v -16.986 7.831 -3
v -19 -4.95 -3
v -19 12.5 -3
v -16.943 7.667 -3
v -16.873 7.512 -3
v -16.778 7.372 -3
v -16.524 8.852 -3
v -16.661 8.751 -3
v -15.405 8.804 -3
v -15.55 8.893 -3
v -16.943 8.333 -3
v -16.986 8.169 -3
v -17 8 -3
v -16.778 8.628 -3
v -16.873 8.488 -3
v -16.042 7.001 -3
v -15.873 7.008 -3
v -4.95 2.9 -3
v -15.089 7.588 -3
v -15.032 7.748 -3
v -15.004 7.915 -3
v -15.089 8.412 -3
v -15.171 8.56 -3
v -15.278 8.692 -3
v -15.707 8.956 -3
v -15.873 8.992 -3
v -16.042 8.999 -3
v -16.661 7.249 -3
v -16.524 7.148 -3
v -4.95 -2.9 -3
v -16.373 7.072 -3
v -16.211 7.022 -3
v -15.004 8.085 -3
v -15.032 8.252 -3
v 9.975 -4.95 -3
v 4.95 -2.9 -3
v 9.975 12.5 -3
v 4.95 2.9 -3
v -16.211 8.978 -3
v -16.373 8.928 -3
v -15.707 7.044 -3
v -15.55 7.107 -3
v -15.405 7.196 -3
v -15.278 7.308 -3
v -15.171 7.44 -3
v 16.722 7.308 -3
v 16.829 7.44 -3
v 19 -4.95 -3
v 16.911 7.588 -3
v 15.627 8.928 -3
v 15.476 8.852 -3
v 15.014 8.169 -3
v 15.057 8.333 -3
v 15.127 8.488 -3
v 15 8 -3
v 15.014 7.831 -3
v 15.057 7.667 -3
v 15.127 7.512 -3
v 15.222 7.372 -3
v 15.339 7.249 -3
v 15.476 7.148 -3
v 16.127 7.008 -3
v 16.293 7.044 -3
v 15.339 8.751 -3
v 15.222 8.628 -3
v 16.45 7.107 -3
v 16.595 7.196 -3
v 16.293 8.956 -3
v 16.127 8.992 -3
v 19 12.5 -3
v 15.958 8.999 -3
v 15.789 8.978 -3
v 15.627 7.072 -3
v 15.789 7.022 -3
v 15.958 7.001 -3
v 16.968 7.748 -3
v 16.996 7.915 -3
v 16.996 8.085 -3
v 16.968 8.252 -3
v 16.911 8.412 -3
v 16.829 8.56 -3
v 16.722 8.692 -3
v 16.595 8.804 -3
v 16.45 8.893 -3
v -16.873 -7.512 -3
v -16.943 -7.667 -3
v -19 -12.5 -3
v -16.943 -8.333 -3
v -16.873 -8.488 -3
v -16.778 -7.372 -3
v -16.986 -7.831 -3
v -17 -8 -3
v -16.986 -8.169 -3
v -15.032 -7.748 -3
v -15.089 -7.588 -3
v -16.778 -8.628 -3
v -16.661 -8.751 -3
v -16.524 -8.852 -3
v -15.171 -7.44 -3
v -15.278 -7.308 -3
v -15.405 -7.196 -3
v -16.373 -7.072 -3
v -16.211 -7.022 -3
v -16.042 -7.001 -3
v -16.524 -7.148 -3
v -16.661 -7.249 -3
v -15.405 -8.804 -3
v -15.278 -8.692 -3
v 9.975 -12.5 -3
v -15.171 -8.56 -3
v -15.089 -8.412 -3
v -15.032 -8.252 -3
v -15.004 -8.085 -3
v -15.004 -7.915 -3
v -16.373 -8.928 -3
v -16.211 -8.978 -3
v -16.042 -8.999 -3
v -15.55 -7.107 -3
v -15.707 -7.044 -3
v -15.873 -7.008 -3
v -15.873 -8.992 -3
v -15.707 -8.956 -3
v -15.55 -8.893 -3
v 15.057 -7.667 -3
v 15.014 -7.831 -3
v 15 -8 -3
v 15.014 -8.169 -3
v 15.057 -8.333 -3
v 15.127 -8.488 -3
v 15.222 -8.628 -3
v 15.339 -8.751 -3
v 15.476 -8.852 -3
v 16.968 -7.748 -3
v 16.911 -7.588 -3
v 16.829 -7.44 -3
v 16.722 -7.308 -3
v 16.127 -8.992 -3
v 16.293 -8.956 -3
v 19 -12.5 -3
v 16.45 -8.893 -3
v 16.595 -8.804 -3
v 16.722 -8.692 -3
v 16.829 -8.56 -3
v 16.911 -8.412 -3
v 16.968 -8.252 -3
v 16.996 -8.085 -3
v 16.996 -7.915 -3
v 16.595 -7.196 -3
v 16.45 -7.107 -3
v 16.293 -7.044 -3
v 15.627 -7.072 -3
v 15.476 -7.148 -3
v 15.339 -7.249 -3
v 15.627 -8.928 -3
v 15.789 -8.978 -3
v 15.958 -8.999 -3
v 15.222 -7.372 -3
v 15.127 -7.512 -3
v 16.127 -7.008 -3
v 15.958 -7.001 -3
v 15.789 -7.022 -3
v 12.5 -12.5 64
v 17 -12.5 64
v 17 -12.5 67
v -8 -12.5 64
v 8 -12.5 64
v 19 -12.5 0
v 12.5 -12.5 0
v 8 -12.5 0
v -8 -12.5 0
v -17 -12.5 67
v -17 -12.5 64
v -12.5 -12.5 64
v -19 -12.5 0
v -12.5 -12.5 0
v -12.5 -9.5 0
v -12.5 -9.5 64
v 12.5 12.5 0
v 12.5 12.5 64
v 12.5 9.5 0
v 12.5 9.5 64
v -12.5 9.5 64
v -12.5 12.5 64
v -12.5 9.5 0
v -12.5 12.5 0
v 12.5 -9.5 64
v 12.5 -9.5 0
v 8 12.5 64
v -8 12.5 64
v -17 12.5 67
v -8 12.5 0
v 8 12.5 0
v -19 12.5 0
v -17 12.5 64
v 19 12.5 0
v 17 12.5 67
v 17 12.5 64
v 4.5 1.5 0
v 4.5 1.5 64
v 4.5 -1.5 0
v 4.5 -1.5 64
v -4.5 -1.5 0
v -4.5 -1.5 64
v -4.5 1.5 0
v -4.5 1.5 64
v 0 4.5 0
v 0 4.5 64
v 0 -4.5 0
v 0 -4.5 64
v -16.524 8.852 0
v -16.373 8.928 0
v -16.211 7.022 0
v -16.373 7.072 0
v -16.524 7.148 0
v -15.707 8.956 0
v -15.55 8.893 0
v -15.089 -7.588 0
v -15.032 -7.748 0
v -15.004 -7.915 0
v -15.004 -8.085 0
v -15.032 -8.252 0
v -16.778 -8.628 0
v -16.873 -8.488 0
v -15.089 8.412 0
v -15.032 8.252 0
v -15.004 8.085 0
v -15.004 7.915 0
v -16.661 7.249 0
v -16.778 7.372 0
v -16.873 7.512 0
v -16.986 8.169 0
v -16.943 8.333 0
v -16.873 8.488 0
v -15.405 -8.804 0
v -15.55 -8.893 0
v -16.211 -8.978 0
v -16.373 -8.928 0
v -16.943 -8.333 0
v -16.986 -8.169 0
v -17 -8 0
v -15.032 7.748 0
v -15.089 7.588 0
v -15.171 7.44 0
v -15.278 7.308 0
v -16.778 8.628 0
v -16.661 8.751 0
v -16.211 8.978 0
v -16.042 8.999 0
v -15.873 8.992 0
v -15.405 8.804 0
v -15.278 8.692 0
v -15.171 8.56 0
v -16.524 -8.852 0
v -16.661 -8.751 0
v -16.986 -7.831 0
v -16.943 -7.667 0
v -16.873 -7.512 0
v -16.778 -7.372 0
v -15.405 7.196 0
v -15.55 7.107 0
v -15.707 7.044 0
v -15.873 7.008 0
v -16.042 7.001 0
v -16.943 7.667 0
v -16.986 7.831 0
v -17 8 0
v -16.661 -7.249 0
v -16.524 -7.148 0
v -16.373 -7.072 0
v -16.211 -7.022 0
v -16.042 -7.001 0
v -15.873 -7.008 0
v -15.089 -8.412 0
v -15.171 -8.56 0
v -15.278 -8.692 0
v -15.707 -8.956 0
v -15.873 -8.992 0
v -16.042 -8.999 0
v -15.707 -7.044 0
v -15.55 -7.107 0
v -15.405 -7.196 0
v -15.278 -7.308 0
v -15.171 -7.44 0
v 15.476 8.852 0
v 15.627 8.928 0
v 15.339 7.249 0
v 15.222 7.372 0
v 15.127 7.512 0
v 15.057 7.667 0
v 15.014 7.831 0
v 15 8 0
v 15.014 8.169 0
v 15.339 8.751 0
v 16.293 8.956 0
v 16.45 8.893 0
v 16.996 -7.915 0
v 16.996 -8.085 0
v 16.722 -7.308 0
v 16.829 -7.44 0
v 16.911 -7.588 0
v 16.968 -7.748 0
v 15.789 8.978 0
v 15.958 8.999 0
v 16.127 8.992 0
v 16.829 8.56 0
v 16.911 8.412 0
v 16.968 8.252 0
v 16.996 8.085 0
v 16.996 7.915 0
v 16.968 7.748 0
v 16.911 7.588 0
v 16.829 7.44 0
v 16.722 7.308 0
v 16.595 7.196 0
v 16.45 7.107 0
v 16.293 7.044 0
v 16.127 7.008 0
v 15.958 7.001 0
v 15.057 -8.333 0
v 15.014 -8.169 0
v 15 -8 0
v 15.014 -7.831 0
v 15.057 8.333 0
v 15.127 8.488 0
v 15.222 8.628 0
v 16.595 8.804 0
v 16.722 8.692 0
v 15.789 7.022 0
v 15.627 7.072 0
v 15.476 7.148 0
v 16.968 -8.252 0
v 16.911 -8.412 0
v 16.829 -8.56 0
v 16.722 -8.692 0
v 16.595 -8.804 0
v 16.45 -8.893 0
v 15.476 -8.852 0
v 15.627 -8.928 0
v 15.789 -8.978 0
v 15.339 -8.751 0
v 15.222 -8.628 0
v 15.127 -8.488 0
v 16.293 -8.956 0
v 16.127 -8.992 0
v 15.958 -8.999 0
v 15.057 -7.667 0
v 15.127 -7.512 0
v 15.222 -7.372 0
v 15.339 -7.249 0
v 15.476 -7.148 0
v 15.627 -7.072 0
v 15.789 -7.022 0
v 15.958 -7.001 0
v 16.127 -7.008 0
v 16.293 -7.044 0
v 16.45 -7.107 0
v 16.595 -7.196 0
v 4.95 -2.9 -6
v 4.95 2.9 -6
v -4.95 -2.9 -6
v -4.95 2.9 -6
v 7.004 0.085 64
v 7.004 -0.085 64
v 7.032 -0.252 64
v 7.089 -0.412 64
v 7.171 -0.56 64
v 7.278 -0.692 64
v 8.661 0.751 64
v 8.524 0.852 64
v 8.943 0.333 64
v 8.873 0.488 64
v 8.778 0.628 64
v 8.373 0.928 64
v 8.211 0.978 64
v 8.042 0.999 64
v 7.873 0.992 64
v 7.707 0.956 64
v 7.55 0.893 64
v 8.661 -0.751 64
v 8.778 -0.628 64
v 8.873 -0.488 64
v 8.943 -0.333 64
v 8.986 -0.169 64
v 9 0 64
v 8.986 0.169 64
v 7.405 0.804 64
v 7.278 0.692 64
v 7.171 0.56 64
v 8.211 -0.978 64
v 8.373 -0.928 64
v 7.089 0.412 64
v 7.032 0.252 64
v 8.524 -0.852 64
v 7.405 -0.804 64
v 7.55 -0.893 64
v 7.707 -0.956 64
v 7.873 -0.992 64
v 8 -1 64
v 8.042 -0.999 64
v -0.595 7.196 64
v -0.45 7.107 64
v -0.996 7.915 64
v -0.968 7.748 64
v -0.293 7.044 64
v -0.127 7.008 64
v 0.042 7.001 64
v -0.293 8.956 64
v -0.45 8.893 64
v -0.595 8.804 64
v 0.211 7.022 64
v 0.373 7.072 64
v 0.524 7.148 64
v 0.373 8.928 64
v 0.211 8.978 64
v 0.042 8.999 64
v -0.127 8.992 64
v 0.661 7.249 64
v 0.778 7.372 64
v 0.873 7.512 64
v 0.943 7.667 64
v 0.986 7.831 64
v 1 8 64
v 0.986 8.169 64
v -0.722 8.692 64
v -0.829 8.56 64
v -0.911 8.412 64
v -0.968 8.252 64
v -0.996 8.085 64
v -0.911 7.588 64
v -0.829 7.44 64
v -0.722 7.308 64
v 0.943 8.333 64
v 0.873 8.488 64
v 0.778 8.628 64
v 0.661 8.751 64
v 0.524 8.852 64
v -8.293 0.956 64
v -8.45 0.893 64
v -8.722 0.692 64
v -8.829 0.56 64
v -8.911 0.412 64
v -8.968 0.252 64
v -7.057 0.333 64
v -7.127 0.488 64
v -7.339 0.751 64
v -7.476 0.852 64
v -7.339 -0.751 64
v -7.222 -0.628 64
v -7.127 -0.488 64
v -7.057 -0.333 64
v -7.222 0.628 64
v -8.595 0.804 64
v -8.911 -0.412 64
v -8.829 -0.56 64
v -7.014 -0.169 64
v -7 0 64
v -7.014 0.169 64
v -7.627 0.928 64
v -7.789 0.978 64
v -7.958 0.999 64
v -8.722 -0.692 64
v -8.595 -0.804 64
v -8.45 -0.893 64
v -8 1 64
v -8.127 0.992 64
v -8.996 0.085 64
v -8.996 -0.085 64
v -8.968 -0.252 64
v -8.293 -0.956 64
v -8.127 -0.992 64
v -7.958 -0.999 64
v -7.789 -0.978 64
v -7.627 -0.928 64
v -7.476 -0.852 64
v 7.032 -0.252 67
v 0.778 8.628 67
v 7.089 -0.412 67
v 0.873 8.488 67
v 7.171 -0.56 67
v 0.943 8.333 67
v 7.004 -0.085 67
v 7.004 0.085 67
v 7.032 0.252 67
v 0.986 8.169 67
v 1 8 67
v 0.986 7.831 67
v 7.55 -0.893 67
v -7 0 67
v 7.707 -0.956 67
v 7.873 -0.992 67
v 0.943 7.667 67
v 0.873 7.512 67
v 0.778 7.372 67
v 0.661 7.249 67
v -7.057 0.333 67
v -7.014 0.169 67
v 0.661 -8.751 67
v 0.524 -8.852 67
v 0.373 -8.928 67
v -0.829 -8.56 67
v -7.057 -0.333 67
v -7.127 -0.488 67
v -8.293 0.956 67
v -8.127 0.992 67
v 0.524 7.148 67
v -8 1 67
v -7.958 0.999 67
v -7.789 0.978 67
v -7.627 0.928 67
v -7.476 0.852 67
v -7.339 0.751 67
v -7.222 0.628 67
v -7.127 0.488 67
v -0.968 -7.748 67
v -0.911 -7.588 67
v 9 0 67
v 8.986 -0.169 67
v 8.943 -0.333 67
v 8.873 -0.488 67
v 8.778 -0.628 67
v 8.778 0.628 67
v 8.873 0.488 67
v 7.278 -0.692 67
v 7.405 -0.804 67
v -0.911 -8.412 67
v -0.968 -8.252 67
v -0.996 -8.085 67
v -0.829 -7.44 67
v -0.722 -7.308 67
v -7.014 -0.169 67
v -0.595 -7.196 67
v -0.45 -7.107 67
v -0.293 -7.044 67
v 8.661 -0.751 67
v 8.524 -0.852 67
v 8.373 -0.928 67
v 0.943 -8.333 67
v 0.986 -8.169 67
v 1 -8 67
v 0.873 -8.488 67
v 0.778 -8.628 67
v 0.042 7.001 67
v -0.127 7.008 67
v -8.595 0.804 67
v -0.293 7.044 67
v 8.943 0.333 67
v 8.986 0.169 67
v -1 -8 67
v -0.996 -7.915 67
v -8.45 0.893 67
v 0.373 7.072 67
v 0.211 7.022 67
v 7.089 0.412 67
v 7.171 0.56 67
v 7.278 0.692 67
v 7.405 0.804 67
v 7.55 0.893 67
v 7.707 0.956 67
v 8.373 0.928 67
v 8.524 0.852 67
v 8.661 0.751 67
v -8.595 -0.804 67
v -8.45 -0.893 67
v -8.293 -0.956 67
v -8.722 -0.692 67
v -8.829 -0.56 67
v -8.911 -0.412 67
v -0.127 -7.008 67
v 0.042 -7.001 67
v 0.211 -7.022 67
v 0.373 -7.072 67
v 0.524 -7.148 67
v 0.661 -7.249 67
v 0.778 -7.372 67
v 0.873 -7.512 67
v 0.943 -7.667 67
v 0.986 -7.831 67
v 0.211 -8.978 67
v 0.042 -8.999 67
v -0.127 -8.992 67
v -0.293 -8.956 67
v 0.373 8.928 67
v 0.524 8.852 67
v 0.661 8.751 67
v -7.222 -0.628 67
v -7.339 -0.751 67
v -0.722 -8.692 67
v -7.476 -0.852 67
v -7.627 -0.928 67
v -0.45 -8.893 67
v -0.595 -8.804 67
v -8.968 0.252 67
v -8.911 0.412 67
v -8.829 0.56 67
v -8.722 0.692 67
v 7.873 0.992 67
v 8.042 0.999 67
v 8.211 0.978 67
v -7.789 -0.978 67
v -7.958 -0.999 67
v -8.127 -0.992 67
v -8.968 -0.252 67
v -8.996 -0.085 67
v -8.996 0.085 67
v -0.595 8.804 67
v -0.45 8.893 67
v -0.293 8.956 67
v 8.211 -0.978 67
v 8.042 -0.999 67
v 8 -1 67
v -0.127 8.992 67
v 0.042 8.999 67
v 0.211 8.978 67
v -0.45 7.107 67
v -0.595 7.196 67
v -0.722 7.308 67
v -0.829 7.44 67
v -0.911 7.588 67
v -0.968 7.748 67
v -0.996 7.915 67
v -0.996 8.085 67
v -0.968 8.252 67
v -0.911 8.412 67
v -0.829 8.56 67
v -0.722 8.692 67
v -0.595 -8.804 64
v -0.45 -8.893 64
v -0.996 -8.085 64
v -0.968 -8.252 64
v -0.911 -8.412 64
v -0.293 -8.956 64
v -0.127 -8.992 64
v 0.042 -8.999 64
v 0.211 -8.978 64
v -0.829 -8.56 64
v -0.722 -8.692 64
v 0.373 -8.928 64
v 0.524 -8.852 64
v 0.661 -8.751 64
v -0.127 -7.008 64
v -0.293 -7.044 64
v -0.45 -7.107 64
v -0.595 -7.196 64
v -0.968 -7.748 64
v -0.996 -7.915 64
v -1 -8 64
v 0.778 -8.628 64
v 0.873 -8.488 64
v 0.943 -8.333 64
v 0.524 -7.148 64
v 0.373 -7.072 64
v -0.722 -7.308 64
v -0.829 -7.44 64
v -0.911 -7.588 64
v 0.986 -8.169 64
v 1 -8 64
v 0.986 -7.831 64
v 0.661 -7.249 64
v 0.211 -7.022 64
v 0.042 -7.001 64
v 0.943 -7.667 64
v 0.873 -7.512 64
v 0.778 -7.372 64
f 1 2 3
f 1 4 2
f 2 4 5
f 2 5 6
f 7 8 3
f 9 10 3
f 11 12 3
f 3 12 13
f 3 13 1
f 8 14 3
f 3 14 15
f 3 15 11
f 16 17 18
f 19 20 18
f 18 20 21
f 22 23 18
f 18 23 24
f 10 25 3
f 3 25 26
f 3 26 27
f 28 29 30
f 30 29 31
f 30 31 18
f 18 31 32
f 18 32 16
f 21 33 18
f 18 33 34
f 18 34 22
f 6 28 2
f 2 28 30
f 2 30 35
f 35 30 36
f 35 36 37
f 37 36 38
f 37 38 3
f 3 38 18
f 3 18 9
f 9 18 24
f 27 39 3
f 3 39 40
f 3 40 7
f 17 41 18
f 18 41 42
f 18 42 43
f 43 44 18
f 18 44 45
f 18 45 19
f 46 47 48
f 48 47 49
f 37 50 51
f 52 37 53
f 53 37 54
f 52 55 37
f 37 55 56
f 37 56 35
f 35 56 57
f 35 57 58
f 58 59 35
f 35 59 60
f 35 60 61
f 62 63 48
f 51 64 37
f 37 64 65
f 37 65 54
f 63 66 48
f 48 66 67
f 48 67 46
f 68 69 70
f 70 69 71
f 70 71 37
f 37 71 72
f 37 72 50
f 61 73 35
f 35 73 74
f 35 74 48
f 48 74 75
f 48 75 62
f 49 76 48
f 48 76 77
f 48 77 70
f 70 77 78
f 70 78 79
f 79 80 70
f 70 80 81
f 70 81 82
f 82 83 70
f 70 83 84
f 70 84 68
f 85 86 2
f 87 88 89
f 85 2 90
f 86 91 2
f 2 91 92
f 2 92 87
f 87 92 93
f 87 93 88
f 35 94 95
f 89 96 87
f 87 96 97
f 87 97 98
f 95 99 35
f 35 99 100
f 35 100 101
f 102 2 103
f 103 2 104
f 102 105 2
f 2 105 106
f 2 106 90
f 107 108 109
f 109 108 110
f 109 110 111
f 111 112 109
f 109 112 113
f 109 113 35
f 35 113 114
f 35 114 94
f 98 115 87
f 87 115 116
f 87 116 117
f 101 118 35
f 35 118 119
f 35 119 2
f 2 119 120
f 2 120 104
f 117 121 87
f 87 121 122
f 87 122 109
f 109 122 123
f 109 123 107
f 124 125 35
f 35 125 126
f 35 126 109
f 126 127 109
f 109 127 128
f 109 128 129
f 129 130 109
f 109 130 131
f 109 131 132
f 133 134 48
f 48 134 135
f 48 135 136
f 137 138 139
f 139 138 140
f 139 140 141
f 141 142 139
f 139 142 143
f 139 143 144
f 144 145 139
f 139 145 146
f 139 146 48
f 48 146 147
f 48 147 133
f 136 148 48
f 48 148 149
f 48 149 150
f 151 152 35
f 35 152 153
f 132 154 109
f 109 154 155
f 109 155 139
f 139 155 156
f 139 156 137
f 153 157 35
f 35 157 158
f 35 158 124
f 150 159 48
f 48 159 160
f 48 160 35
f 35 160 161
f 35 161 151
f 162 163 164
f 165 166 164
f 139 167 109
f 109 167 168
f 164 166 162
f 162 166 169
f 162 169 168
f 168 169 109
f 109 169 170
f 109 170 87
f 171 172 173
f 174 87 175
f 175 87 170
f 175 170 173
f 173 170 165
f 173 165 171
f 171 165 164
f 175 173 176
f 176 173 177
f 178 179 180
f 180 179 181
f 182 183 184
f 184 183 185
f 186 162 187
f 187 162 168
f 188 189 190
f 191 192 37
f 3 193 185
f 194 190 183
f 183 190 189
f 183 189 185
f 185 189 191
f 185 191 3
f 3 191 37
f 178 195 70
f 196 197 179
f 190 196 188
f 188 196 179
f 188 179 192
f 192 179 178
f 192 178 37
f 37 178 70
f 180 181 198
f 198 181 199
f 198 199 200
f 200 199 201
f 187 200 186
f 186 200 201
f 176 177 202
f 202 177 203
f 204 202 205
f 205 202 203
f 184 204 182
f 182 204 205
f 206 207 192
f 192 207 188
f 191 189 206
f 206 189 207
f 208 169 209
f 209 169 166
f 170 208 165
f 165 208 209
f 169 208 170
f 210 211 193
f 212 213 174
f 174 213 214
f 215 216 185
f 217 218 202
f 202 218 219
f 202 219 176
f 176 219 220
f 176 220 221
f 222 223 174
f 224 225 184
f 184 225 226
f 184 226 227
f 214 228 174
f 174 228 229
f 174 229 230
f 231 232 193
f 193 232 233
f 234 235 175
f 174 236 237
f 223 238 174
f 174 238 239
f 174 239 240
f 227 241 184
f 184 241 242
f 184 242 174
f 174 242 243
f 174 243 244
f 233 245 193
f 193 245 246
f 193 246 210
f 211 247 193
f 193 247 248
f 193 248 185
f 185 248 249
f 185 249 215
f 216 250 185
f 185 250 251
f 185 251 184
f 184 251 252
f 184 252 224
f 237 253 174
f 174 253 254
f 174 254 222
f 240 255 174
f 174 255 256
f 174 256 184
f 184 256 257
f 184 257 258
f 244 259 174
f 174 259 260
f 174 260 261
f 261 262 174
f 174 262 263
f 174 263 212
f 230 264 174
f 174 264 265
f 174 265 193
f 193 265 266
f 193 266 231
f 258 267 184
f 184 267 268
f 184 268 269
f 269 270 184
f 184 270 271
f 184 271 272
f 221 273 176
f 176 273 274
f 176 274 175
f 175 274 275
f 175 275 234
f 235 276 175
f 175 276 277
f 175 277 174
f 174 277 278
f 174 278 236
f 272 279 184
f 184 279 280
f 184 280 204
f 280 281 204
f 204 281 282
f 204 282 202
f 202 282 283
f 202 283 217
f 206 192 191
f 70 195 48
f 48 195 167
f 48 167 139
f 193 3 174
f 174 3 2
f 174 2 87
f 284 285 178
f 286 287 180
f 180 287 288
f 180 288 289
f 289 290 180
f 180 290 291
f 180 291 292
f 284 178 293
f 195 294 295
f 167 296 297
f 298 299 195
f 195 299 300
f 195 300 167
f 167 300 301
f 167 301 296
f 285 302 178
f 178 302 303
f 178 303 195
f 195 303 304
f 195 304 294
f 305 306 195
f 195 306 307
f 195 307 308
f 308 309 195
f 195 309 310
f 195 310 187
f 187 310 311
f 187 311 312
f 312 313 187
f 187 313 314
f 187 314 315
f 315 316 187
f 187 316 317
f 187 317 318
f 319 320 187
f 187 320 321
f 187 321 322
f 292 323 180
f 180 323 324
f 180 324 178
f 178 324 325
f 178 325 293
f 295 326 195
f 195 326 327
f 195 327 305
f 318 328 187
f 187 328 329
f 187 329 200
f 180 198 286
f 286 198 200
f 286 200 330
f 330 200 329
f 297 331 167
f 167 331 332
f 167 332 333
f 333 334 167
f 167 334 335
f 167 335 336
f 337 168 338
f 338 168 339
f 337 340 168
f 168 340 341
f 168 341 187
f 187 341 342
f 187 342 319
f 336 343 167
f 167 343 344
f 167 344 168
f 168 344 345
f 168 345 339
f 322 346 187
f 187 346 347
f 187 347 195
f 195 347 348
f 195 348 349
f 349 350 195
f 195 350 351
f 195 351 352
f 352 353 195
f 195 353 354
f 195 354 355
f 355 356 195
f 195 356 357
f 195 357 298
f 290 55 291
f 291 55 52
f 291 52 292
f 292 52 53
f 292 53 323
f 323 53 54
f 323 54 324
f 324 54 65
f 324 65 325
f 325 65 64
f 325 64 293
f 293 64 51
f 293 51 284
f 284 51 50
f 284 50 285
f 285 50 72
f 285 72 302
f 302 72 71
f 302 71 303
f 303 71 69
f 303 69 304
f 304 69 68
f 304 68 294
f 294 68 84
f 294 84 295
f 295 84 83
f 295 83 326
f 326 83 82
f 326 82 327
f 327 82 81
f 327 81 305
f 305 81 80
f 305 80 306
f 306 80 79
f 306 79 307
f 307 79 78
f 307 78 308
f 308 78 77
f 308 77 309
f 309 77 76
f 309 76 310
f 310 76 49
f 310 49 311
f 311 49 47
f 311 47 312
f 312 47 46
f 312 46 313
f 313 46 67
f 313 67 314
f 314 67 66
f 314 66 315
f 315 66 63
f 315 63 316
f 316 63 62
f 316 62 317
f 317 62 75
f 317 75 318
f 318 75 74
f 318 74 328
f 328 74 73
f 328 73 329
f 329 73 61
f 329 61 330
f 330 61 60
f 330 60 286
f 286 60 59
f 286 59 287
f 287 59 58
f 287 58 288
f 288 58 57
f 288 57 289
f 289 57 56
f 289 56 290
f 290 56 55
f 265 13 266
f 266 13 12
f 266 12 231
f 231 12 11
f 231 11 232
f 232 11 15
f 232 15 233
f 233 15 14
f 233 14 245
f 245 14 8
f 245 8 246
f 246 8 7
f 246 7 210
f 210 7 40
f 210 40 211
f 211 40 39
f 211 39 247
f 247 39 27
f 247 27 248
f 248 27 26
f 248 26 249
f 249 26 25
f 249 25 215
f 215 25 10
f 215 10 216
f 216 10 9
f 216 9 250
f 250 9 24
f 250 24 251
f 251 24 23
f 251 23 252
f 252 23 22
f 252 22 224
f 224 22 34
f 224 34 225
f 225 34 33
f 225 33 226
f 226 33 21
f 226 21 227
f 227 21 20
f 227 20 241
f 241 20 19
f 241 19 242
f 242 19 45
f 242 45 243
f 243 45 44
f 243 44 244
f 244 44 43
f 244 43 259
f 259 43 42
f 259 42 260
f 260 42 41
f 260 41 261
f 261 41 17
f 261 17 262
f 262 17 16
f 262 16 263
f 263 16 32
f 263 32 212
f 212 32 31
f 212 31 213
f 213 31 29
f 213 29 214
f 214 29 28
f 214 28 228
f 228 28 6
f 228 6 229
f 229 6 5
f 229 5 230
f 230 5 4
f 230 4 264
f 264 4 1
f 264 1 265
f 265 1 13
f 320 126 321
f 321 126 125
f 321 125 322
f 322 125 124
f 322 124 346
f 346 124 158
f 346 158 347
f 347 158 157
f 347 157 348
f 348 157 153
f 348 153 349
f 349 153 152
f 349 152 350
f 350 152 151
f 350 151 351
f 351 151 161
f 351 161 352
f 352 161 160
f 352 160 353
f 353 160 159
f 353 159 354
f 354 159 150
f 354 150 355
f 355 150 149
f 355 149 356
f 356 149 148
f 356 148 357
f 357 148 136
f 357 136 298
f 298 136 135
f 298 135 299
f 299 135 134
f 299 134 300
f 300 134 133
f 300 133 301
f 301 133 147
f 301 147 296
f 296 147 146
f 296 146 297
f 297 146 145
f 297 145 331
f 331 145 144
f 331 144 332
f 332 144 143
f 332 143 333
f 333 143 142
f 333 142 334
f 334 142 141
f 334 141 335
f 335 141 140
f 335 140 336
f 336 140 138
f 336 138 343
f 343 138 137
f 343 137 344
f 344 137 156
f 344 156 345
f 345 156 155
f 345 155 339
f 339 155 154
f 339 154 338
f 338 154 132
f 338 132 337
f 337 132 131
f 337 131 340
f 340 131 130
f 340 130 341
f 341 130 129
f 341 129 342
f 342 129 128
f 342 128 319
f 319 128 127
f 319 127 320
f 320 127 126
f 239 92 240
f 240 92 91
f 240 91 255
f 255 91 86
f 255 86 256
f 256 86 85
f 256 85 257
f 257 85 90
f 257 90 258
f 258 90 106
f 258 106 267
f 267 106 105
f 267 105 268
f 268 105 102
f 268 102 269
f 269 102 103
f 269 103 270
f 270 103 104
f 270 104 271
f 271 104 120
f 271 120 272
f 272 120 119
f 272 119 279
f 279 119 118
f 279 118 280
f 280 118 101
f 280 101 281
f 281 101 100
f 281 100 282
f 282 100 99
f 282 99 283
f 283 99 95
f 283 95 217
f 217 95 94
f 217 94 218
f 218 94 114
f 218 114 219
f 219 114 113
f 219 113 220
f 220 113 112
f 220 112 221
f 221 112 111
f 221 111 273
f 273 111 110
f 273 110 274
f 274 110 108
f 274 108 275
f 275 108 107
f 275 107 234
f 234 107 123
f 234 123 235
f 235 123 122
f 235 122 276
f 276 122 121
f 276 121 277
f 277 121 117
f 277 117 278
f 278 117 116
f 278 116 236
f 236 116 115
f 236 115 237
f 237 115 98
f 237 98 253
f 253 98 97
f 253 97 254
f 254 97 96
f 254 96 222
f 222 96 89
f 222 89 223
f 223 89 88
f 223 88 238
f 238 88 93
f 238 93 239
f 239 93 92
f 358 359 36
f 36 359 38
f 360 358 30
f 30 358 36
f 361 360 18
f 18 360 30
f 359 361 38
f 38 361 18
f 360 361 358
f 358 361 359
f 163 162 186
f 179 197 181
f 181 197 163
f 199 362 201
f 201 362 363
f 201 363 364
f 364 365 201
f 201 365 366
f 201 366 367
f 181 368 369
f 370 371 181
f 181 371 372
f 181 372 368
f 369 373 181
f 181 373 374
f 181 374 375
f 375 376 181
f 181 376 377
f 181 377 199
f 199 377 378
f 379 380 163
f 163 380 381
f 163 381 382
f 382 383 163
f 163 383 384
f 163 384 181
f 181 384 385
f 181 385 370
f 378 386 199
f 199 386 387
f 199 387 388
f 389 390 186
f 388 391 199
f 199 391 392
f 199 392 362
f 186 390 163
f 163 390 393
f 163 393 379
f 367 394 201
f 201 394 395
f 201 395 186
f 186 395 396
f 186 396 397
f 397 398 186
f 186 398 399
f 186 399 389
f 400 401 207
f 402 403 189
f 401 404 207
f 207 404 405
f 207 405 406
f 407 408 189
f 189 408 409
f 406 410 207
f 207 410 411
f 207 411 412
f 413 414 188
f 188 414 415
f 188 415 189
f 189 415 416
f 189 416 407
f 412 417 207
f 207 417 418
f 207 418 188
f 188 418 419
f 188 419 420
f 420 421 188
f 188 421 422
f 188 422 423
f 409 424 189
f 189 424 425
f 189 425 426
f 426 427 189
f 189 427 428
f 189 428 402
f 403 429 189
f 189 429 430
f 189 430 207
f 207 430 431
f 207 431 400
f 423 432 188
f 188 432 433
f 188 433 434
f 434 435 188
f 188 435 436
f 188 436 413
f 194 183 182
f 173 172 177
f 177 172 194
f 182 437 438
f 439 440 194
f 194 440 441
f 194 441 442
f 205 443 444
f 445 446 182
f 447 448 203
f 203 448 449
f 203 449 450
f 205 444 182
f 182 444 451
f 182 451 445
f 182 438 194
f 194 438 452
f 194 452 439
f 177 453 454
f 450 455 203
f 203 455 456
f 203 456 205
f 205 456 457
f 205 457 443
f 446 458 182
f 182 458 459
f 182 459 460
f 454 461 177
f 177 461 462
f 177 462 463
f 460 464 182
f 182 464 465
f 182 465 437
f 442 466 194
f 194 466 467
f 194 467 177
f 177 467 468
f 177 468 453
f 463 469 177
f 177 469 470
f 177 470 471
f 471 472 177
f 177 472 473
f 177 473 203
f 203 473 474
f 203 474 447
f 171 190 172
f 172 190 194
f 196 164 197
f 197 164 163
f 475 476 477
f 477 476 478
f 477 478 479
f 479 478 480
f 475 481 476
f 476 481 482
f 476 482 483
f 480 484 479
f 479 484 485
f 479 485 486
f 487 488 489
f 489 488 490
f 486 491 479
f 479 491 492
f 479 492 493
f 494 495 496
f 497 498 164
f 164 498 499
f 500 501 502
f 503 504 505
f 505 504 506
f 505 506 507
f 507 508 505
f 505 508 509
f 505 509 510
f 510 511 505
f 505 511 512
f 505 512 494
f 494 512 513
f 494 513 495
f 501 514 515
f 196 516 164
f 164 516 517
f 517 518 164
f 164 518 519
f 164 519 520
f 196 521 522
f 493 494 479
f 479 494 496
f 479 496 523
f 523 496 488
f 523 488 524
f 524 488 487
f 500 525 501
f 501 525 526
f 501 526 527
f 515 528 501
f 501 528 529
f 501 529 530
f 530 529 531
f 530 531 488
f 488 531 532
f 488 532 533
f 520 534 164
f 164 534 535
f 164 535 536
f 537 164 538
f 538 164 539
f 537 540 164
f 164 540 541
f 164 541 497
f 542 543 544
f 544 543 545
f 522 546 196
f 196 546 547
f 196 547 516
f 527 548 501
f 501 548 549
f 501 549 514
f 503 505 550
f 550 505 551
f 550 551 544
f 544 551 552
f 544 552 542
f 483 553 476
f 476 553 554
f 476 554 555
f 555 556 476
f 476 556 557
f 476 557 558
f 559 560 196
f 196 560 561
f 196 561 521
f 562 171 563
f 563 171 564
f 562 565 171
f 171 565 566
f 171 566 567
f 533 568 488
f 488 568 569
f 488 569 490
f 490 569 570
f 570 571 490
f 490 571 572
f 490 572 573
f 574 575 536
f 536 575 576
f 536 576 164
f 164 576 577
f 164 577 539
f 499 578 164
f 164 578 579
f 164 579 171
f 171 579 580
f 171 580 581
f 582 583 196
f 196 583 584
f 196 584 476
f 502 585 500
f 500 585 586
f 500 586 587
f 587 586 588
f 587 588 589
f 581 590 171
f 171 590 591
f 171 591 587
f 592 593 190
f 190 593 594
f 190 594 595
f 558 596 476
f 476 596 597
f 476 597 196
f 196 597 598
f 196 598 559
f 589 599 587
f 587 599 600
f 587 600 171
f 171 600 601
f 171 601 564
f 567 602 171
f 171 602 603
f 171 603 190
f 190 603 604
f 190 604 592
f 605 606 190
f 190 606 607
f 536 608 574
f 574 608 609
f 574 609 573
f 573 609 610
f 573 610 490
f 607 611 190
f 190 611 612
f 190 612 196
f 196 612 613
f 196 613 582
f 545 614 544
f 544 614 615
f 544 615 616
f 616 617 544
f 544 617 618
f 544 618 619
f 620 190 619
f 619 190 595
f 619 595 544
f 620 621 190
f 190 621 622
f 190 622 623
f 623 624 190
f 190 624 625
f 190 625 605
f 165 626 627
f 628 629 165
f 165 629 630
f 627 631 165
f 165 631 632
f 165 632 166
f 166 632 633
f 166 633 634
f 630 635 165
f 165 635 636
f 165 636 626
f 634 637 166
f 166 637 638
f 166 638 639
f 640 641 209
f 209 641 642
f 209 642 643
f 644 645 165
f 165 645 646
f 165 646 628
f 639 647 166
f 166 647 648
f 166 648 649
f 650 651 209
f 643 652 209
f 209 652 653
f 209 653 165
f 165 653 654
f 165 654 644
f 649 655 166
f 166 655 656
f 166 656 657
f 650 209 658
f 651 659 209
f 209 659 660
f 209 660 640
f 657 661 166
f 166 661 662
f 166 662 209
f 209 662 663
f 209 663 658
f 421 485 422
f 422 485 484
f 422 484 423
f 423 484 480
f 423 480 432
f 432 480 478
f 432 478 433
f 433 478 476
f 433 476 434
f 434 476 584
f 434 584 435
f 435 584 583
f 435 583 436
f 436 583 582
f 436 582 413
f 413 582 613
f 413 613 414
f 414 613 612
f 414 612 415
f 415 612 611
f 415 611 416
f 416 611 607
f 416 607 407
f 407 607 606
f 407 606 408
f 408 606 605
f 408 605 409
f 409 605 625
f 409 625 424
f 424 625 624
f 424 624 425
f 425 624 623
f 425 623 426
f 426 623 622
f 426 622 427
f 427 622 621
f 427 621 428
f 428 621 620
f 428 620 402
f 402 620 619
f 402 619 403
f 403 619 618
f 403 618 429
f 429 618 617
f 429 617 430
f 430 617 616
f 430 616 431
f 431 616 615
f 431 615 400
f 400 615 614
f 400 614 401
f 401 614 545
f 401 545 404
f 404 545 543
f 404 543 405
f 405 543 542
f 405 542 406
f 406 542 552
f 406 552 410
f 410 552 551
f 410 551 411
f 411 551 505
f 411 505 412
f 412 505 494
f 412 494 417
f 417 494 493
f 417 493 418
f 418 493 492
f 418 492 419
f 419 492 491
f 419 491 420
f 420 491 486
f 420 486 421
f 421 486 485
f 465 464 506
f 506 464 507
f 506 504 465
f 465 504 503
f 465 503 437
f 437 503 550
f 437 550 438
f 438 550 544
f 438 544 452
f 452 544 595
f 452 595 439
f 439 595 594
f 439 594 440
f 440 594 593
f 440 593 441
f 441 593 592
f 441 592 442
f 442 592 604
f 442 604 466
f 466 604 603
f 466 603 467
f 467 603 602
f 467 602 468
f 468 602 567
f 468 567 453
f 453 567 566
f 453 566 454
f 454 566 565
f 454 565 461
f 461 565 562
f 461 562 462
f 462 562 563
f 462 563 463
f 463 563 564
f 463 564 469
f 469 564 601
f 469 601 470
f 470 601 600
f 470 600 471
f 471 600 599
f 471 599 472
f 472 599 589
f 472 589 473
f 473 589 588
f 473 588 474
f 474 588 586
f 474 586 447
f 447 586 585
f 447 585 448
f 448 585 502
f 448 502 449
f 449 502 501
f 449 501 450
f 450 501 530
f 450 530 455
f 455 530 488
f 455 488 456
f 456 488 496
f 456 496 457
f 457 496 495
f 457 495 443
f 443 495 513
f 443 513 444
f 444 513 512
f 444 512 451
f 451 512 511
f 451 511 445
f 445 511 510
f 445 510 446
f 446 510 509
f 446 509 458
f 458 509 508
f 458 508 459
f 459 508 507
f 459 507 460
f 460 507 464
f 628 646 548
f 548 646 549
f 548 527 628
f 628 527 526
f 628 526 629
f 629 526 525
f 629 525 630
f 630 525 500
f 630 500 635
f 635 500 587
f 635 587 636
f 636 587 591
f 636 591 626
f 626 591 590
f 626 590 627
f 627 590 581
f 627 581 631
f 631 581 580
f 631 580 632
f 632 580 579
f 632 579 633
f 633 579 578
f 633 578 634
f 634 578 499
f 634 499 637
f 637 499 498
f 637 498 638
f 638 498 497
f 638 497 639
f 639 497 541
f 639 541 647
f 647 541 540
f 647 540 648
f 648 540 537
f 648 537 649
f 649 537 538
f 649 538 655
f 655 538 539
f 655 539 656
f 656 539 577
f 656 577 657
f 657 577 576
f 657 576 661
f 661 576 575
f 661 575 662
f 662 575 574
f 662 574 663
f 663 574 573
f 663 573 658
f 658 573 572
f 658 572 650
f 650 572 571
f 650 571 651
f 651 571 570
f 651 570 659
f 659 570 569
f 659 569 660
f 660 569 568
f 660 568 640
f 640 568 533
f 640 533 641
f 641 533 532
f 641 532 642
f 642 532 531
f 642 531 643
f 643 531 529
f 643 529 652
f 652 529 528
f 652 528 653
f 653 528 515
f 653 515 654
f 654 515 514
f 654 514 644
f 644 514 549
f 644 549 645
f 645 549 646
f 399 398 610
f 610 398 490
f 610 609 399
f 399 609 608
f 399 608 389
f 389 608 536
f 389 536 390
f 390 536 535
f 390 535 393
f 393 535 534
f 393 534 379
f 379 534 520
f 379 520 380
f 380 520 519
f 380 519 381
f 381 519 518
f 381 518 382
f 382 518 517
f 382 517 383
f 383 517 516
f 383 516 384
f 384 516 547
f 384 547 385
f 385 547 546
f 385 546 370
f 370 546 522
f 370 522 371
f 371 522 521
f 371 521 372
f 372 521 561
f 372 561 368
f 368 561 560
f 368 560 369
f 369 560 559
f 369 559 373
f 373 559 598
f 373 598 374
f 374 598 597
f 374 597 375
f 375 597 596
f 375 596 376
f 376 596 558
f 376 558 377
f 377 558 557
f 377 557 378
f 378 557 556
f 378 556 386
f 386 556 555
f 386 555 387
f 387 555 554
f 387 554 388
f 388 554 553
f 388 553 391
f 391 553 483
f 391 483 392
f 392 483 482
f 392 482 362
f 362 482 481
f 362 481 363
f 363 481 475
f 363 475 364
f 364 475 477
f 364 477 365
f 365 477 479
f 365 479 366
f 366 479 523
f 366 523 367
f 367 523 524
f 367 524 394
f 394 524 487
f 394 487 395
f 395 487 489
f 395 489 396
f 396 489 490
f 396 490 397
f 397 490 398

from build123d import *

# Parameters (mm, degrees)
SKETCH_1_W                       = 25
SKETCH_1_H                       = 25
EXTRUDE_1_DEPTH                  = 64
CUT_EXTRUDE_1_DEPTH              = 100
CUT_EXTRUDE_4_DEPTH              = 64
SKETCH_3_W                       = 38
SKETCH_3_H                       = 25
EXTRUDE_2_DEPTH                  = 3
SKETCH_4_R                       = 1
CUT_EXTRUDE_2_DEPTH              = 3
PATTERN_LINEAR_1_COUNT           = 2
PATTERN_LINEAR_1_PITCH           = 32
PATTERN_LINEAR_2_COUNT           = 2
PATTERN_LINEAR_2_PITCH           = 16
PATTERN_LINEAR_2_COPY_1_SKETCH_R = 1
PATTERN_LINEAR_2_COPY_1_DEPTH    = 3
SKETCH_6_W                       = 9.9
SKETCH_6_H                       = 5.8
EXTRUDE_3_DEPTH                  = 3
SKETCH_7_W                       = 34
SKETCH_7_H                       = 25
EXTRUDE_4_DEPTH                  = 3
SKETCH_8_R                       = 1
CUT_EXTRUDE_3_DEPTH              = 3
PATTERN_CIRCULAR_1_COUNT         = 4


with BuildPart() as part:
    # 草图1 → 凸台-拉伸1 (new body)
    with BuildSketch(Plane.XY):
        Rectangle(SKETCH_1_W, SKETCH_1_H)
    extrude(amount=EXTRUDE_1_DEPTH)

    # 草图2 → 切除-拉伸1 (cut)
    with BuildSketch(Plane(origin=(0, 0, 0), x_dir=(-1, 0, 0), z_dir=(0, 0, -1))):
        Polygon((-4.5, 1.5), (-12.5, 9.5), (-12.5, -9.5), (-4.5, -1.5), align=None)
    cut_extrude_1 = extrude(amount=-CUT_EXTRUDE_1_DEPTH, mode=Mode.SUBTRACT)

    # 镜向1: 切除-拉伸1 across plane
    add(cut_extrude_1.mirror(Plane(origin=(0, 0, 0), x_dir=(0, 0, 1), z_dir=(1, 0, 0))), mode=Mode.SUBTRACT)

    # 草图9 → 切除-拉伸4 (cut)
    with BuildSketch(Plane(origin=(0, 0, 0), x_dir=(-1, 0, 0), z_dir=(0, 0, -1))):
        Polygon((-8, 12.5), (0, 4.5), (8, 12.5), align=None)
    cut_extrude_4 = extrude(amount=-CUT_EXTRUDE_4_DEPTH, mode=Mode.SUBTRACT)

    # 镜向2: 切除-拉伸4 across plane
    add(cut_extrude_4.mirror(Plane.ZX), mode=Mode.SUBTRACT)

    # 草图3 → 凸台-拉伸2 (add)
    with BuildSketch(Plane(origin=(0, 0, 0), x_dir=(-1, 0, 0), z_dir=(0, 0, -1))):
        Rectangle(SKETCH_3_W, SKETCH_3_H)
    extrude(amount=EXTRUDE_2_DEPTH)

    # 草图4 → 切除-拉伸2 (cut)
    with BuildSketch(Plane(origin=(0, 0, -3), x_dir=(-1, 0, 0), z_dir=(0, 0, -1))):
        with Locations((-16, 8)):
            Circle(SKETCH_4_R)
    cut_extrude_2 = extrude(amount=-CUT_EXTRUDE_2_DEPTH, mode=Mode.SUBTRACT)

    # 阵列(线性)1: 切除-拉伸2 ×2
    with Locations(*[(-i * PATTERN_LINEAR_1_PITCH, 0, 0) for i in range(1, PATTERN_LINEAR_1_COUNT)]):
        add(cut_extrude_2, mode=Mode.SUBTRACT)

    # 阵列(线性)2: 切除-拉伸2 ×2
    with Locations(*[(0, -i * PATTERN_LINEAR_2_PITCH, 0) for i in range(1, PATTERN_LINEAR_2_COUNT)]):
        add(cut_extrude_2, mode=Mode.SUBTRACT)

    # 阵列(线性)2 copy 1 sketch → 阵列(线性)2 copy 1 (cut)
    with BuildSketch(Plane(origin=(-32, -16, -3), x_dir=(-1, 0, 0), z_dir=(0, 0, -1))):
        with Locations((-16, 8)):
            Circle(PATTERN_LINEAR_2_COPY_1_SKETCH_R)
    extrude(amount=-PATTERN_LINEAR_2_COPY_1_DEPTH, mode=Mode.SUBTRACT)

    # 草图6 → 凸台-拉伸3 (add)
    with BuildSketch(Plane(origin=(0, 0, -3), x_dir=(-1, 0, 0), z_dir=(0, 0, -1))):
        Rectangle(SKETCH_6_W, SKETCH_6_H)
    extrude(amount=EXTRUDE_3_DEPTH)

    # 草图7 → 凸台-拉伸4 (add)
    with BuildSketch(Plane.XY.offset(64)):
        Rectangle(SKETCH_7_W, SKETCH_7_H)
    extrude(amount=EXTRUDE_4_DEPTH)

    # 草图8 → 切除-拉伸3 (cut)
    with BuildSketch(Plane.XY.offset(67)):
        with Locations((0, 8)):
            Circle(SKETCH_8_R)
    cut_extrude_3 = extrude(amount=-CUT_EXTRUDE_3_DEPTH, mode=Mode.SUBTRACT)

    # 阵列(圆周)1: 切除-拉伸3 ×4 about axis
    pattern_circular_1_axis = Axis((0, 0, 0), (0, 0, 1))
    for i in range(1, PATTERN_CIRCULAR_1_COUNT):
        add(cut_extrude_3.rotate(pattern_circular_1_axis, i * 360 / PATTERN_CIRCULAR_1_COUNT), mode=Mode.SUBTRACT)


solid = part.part
